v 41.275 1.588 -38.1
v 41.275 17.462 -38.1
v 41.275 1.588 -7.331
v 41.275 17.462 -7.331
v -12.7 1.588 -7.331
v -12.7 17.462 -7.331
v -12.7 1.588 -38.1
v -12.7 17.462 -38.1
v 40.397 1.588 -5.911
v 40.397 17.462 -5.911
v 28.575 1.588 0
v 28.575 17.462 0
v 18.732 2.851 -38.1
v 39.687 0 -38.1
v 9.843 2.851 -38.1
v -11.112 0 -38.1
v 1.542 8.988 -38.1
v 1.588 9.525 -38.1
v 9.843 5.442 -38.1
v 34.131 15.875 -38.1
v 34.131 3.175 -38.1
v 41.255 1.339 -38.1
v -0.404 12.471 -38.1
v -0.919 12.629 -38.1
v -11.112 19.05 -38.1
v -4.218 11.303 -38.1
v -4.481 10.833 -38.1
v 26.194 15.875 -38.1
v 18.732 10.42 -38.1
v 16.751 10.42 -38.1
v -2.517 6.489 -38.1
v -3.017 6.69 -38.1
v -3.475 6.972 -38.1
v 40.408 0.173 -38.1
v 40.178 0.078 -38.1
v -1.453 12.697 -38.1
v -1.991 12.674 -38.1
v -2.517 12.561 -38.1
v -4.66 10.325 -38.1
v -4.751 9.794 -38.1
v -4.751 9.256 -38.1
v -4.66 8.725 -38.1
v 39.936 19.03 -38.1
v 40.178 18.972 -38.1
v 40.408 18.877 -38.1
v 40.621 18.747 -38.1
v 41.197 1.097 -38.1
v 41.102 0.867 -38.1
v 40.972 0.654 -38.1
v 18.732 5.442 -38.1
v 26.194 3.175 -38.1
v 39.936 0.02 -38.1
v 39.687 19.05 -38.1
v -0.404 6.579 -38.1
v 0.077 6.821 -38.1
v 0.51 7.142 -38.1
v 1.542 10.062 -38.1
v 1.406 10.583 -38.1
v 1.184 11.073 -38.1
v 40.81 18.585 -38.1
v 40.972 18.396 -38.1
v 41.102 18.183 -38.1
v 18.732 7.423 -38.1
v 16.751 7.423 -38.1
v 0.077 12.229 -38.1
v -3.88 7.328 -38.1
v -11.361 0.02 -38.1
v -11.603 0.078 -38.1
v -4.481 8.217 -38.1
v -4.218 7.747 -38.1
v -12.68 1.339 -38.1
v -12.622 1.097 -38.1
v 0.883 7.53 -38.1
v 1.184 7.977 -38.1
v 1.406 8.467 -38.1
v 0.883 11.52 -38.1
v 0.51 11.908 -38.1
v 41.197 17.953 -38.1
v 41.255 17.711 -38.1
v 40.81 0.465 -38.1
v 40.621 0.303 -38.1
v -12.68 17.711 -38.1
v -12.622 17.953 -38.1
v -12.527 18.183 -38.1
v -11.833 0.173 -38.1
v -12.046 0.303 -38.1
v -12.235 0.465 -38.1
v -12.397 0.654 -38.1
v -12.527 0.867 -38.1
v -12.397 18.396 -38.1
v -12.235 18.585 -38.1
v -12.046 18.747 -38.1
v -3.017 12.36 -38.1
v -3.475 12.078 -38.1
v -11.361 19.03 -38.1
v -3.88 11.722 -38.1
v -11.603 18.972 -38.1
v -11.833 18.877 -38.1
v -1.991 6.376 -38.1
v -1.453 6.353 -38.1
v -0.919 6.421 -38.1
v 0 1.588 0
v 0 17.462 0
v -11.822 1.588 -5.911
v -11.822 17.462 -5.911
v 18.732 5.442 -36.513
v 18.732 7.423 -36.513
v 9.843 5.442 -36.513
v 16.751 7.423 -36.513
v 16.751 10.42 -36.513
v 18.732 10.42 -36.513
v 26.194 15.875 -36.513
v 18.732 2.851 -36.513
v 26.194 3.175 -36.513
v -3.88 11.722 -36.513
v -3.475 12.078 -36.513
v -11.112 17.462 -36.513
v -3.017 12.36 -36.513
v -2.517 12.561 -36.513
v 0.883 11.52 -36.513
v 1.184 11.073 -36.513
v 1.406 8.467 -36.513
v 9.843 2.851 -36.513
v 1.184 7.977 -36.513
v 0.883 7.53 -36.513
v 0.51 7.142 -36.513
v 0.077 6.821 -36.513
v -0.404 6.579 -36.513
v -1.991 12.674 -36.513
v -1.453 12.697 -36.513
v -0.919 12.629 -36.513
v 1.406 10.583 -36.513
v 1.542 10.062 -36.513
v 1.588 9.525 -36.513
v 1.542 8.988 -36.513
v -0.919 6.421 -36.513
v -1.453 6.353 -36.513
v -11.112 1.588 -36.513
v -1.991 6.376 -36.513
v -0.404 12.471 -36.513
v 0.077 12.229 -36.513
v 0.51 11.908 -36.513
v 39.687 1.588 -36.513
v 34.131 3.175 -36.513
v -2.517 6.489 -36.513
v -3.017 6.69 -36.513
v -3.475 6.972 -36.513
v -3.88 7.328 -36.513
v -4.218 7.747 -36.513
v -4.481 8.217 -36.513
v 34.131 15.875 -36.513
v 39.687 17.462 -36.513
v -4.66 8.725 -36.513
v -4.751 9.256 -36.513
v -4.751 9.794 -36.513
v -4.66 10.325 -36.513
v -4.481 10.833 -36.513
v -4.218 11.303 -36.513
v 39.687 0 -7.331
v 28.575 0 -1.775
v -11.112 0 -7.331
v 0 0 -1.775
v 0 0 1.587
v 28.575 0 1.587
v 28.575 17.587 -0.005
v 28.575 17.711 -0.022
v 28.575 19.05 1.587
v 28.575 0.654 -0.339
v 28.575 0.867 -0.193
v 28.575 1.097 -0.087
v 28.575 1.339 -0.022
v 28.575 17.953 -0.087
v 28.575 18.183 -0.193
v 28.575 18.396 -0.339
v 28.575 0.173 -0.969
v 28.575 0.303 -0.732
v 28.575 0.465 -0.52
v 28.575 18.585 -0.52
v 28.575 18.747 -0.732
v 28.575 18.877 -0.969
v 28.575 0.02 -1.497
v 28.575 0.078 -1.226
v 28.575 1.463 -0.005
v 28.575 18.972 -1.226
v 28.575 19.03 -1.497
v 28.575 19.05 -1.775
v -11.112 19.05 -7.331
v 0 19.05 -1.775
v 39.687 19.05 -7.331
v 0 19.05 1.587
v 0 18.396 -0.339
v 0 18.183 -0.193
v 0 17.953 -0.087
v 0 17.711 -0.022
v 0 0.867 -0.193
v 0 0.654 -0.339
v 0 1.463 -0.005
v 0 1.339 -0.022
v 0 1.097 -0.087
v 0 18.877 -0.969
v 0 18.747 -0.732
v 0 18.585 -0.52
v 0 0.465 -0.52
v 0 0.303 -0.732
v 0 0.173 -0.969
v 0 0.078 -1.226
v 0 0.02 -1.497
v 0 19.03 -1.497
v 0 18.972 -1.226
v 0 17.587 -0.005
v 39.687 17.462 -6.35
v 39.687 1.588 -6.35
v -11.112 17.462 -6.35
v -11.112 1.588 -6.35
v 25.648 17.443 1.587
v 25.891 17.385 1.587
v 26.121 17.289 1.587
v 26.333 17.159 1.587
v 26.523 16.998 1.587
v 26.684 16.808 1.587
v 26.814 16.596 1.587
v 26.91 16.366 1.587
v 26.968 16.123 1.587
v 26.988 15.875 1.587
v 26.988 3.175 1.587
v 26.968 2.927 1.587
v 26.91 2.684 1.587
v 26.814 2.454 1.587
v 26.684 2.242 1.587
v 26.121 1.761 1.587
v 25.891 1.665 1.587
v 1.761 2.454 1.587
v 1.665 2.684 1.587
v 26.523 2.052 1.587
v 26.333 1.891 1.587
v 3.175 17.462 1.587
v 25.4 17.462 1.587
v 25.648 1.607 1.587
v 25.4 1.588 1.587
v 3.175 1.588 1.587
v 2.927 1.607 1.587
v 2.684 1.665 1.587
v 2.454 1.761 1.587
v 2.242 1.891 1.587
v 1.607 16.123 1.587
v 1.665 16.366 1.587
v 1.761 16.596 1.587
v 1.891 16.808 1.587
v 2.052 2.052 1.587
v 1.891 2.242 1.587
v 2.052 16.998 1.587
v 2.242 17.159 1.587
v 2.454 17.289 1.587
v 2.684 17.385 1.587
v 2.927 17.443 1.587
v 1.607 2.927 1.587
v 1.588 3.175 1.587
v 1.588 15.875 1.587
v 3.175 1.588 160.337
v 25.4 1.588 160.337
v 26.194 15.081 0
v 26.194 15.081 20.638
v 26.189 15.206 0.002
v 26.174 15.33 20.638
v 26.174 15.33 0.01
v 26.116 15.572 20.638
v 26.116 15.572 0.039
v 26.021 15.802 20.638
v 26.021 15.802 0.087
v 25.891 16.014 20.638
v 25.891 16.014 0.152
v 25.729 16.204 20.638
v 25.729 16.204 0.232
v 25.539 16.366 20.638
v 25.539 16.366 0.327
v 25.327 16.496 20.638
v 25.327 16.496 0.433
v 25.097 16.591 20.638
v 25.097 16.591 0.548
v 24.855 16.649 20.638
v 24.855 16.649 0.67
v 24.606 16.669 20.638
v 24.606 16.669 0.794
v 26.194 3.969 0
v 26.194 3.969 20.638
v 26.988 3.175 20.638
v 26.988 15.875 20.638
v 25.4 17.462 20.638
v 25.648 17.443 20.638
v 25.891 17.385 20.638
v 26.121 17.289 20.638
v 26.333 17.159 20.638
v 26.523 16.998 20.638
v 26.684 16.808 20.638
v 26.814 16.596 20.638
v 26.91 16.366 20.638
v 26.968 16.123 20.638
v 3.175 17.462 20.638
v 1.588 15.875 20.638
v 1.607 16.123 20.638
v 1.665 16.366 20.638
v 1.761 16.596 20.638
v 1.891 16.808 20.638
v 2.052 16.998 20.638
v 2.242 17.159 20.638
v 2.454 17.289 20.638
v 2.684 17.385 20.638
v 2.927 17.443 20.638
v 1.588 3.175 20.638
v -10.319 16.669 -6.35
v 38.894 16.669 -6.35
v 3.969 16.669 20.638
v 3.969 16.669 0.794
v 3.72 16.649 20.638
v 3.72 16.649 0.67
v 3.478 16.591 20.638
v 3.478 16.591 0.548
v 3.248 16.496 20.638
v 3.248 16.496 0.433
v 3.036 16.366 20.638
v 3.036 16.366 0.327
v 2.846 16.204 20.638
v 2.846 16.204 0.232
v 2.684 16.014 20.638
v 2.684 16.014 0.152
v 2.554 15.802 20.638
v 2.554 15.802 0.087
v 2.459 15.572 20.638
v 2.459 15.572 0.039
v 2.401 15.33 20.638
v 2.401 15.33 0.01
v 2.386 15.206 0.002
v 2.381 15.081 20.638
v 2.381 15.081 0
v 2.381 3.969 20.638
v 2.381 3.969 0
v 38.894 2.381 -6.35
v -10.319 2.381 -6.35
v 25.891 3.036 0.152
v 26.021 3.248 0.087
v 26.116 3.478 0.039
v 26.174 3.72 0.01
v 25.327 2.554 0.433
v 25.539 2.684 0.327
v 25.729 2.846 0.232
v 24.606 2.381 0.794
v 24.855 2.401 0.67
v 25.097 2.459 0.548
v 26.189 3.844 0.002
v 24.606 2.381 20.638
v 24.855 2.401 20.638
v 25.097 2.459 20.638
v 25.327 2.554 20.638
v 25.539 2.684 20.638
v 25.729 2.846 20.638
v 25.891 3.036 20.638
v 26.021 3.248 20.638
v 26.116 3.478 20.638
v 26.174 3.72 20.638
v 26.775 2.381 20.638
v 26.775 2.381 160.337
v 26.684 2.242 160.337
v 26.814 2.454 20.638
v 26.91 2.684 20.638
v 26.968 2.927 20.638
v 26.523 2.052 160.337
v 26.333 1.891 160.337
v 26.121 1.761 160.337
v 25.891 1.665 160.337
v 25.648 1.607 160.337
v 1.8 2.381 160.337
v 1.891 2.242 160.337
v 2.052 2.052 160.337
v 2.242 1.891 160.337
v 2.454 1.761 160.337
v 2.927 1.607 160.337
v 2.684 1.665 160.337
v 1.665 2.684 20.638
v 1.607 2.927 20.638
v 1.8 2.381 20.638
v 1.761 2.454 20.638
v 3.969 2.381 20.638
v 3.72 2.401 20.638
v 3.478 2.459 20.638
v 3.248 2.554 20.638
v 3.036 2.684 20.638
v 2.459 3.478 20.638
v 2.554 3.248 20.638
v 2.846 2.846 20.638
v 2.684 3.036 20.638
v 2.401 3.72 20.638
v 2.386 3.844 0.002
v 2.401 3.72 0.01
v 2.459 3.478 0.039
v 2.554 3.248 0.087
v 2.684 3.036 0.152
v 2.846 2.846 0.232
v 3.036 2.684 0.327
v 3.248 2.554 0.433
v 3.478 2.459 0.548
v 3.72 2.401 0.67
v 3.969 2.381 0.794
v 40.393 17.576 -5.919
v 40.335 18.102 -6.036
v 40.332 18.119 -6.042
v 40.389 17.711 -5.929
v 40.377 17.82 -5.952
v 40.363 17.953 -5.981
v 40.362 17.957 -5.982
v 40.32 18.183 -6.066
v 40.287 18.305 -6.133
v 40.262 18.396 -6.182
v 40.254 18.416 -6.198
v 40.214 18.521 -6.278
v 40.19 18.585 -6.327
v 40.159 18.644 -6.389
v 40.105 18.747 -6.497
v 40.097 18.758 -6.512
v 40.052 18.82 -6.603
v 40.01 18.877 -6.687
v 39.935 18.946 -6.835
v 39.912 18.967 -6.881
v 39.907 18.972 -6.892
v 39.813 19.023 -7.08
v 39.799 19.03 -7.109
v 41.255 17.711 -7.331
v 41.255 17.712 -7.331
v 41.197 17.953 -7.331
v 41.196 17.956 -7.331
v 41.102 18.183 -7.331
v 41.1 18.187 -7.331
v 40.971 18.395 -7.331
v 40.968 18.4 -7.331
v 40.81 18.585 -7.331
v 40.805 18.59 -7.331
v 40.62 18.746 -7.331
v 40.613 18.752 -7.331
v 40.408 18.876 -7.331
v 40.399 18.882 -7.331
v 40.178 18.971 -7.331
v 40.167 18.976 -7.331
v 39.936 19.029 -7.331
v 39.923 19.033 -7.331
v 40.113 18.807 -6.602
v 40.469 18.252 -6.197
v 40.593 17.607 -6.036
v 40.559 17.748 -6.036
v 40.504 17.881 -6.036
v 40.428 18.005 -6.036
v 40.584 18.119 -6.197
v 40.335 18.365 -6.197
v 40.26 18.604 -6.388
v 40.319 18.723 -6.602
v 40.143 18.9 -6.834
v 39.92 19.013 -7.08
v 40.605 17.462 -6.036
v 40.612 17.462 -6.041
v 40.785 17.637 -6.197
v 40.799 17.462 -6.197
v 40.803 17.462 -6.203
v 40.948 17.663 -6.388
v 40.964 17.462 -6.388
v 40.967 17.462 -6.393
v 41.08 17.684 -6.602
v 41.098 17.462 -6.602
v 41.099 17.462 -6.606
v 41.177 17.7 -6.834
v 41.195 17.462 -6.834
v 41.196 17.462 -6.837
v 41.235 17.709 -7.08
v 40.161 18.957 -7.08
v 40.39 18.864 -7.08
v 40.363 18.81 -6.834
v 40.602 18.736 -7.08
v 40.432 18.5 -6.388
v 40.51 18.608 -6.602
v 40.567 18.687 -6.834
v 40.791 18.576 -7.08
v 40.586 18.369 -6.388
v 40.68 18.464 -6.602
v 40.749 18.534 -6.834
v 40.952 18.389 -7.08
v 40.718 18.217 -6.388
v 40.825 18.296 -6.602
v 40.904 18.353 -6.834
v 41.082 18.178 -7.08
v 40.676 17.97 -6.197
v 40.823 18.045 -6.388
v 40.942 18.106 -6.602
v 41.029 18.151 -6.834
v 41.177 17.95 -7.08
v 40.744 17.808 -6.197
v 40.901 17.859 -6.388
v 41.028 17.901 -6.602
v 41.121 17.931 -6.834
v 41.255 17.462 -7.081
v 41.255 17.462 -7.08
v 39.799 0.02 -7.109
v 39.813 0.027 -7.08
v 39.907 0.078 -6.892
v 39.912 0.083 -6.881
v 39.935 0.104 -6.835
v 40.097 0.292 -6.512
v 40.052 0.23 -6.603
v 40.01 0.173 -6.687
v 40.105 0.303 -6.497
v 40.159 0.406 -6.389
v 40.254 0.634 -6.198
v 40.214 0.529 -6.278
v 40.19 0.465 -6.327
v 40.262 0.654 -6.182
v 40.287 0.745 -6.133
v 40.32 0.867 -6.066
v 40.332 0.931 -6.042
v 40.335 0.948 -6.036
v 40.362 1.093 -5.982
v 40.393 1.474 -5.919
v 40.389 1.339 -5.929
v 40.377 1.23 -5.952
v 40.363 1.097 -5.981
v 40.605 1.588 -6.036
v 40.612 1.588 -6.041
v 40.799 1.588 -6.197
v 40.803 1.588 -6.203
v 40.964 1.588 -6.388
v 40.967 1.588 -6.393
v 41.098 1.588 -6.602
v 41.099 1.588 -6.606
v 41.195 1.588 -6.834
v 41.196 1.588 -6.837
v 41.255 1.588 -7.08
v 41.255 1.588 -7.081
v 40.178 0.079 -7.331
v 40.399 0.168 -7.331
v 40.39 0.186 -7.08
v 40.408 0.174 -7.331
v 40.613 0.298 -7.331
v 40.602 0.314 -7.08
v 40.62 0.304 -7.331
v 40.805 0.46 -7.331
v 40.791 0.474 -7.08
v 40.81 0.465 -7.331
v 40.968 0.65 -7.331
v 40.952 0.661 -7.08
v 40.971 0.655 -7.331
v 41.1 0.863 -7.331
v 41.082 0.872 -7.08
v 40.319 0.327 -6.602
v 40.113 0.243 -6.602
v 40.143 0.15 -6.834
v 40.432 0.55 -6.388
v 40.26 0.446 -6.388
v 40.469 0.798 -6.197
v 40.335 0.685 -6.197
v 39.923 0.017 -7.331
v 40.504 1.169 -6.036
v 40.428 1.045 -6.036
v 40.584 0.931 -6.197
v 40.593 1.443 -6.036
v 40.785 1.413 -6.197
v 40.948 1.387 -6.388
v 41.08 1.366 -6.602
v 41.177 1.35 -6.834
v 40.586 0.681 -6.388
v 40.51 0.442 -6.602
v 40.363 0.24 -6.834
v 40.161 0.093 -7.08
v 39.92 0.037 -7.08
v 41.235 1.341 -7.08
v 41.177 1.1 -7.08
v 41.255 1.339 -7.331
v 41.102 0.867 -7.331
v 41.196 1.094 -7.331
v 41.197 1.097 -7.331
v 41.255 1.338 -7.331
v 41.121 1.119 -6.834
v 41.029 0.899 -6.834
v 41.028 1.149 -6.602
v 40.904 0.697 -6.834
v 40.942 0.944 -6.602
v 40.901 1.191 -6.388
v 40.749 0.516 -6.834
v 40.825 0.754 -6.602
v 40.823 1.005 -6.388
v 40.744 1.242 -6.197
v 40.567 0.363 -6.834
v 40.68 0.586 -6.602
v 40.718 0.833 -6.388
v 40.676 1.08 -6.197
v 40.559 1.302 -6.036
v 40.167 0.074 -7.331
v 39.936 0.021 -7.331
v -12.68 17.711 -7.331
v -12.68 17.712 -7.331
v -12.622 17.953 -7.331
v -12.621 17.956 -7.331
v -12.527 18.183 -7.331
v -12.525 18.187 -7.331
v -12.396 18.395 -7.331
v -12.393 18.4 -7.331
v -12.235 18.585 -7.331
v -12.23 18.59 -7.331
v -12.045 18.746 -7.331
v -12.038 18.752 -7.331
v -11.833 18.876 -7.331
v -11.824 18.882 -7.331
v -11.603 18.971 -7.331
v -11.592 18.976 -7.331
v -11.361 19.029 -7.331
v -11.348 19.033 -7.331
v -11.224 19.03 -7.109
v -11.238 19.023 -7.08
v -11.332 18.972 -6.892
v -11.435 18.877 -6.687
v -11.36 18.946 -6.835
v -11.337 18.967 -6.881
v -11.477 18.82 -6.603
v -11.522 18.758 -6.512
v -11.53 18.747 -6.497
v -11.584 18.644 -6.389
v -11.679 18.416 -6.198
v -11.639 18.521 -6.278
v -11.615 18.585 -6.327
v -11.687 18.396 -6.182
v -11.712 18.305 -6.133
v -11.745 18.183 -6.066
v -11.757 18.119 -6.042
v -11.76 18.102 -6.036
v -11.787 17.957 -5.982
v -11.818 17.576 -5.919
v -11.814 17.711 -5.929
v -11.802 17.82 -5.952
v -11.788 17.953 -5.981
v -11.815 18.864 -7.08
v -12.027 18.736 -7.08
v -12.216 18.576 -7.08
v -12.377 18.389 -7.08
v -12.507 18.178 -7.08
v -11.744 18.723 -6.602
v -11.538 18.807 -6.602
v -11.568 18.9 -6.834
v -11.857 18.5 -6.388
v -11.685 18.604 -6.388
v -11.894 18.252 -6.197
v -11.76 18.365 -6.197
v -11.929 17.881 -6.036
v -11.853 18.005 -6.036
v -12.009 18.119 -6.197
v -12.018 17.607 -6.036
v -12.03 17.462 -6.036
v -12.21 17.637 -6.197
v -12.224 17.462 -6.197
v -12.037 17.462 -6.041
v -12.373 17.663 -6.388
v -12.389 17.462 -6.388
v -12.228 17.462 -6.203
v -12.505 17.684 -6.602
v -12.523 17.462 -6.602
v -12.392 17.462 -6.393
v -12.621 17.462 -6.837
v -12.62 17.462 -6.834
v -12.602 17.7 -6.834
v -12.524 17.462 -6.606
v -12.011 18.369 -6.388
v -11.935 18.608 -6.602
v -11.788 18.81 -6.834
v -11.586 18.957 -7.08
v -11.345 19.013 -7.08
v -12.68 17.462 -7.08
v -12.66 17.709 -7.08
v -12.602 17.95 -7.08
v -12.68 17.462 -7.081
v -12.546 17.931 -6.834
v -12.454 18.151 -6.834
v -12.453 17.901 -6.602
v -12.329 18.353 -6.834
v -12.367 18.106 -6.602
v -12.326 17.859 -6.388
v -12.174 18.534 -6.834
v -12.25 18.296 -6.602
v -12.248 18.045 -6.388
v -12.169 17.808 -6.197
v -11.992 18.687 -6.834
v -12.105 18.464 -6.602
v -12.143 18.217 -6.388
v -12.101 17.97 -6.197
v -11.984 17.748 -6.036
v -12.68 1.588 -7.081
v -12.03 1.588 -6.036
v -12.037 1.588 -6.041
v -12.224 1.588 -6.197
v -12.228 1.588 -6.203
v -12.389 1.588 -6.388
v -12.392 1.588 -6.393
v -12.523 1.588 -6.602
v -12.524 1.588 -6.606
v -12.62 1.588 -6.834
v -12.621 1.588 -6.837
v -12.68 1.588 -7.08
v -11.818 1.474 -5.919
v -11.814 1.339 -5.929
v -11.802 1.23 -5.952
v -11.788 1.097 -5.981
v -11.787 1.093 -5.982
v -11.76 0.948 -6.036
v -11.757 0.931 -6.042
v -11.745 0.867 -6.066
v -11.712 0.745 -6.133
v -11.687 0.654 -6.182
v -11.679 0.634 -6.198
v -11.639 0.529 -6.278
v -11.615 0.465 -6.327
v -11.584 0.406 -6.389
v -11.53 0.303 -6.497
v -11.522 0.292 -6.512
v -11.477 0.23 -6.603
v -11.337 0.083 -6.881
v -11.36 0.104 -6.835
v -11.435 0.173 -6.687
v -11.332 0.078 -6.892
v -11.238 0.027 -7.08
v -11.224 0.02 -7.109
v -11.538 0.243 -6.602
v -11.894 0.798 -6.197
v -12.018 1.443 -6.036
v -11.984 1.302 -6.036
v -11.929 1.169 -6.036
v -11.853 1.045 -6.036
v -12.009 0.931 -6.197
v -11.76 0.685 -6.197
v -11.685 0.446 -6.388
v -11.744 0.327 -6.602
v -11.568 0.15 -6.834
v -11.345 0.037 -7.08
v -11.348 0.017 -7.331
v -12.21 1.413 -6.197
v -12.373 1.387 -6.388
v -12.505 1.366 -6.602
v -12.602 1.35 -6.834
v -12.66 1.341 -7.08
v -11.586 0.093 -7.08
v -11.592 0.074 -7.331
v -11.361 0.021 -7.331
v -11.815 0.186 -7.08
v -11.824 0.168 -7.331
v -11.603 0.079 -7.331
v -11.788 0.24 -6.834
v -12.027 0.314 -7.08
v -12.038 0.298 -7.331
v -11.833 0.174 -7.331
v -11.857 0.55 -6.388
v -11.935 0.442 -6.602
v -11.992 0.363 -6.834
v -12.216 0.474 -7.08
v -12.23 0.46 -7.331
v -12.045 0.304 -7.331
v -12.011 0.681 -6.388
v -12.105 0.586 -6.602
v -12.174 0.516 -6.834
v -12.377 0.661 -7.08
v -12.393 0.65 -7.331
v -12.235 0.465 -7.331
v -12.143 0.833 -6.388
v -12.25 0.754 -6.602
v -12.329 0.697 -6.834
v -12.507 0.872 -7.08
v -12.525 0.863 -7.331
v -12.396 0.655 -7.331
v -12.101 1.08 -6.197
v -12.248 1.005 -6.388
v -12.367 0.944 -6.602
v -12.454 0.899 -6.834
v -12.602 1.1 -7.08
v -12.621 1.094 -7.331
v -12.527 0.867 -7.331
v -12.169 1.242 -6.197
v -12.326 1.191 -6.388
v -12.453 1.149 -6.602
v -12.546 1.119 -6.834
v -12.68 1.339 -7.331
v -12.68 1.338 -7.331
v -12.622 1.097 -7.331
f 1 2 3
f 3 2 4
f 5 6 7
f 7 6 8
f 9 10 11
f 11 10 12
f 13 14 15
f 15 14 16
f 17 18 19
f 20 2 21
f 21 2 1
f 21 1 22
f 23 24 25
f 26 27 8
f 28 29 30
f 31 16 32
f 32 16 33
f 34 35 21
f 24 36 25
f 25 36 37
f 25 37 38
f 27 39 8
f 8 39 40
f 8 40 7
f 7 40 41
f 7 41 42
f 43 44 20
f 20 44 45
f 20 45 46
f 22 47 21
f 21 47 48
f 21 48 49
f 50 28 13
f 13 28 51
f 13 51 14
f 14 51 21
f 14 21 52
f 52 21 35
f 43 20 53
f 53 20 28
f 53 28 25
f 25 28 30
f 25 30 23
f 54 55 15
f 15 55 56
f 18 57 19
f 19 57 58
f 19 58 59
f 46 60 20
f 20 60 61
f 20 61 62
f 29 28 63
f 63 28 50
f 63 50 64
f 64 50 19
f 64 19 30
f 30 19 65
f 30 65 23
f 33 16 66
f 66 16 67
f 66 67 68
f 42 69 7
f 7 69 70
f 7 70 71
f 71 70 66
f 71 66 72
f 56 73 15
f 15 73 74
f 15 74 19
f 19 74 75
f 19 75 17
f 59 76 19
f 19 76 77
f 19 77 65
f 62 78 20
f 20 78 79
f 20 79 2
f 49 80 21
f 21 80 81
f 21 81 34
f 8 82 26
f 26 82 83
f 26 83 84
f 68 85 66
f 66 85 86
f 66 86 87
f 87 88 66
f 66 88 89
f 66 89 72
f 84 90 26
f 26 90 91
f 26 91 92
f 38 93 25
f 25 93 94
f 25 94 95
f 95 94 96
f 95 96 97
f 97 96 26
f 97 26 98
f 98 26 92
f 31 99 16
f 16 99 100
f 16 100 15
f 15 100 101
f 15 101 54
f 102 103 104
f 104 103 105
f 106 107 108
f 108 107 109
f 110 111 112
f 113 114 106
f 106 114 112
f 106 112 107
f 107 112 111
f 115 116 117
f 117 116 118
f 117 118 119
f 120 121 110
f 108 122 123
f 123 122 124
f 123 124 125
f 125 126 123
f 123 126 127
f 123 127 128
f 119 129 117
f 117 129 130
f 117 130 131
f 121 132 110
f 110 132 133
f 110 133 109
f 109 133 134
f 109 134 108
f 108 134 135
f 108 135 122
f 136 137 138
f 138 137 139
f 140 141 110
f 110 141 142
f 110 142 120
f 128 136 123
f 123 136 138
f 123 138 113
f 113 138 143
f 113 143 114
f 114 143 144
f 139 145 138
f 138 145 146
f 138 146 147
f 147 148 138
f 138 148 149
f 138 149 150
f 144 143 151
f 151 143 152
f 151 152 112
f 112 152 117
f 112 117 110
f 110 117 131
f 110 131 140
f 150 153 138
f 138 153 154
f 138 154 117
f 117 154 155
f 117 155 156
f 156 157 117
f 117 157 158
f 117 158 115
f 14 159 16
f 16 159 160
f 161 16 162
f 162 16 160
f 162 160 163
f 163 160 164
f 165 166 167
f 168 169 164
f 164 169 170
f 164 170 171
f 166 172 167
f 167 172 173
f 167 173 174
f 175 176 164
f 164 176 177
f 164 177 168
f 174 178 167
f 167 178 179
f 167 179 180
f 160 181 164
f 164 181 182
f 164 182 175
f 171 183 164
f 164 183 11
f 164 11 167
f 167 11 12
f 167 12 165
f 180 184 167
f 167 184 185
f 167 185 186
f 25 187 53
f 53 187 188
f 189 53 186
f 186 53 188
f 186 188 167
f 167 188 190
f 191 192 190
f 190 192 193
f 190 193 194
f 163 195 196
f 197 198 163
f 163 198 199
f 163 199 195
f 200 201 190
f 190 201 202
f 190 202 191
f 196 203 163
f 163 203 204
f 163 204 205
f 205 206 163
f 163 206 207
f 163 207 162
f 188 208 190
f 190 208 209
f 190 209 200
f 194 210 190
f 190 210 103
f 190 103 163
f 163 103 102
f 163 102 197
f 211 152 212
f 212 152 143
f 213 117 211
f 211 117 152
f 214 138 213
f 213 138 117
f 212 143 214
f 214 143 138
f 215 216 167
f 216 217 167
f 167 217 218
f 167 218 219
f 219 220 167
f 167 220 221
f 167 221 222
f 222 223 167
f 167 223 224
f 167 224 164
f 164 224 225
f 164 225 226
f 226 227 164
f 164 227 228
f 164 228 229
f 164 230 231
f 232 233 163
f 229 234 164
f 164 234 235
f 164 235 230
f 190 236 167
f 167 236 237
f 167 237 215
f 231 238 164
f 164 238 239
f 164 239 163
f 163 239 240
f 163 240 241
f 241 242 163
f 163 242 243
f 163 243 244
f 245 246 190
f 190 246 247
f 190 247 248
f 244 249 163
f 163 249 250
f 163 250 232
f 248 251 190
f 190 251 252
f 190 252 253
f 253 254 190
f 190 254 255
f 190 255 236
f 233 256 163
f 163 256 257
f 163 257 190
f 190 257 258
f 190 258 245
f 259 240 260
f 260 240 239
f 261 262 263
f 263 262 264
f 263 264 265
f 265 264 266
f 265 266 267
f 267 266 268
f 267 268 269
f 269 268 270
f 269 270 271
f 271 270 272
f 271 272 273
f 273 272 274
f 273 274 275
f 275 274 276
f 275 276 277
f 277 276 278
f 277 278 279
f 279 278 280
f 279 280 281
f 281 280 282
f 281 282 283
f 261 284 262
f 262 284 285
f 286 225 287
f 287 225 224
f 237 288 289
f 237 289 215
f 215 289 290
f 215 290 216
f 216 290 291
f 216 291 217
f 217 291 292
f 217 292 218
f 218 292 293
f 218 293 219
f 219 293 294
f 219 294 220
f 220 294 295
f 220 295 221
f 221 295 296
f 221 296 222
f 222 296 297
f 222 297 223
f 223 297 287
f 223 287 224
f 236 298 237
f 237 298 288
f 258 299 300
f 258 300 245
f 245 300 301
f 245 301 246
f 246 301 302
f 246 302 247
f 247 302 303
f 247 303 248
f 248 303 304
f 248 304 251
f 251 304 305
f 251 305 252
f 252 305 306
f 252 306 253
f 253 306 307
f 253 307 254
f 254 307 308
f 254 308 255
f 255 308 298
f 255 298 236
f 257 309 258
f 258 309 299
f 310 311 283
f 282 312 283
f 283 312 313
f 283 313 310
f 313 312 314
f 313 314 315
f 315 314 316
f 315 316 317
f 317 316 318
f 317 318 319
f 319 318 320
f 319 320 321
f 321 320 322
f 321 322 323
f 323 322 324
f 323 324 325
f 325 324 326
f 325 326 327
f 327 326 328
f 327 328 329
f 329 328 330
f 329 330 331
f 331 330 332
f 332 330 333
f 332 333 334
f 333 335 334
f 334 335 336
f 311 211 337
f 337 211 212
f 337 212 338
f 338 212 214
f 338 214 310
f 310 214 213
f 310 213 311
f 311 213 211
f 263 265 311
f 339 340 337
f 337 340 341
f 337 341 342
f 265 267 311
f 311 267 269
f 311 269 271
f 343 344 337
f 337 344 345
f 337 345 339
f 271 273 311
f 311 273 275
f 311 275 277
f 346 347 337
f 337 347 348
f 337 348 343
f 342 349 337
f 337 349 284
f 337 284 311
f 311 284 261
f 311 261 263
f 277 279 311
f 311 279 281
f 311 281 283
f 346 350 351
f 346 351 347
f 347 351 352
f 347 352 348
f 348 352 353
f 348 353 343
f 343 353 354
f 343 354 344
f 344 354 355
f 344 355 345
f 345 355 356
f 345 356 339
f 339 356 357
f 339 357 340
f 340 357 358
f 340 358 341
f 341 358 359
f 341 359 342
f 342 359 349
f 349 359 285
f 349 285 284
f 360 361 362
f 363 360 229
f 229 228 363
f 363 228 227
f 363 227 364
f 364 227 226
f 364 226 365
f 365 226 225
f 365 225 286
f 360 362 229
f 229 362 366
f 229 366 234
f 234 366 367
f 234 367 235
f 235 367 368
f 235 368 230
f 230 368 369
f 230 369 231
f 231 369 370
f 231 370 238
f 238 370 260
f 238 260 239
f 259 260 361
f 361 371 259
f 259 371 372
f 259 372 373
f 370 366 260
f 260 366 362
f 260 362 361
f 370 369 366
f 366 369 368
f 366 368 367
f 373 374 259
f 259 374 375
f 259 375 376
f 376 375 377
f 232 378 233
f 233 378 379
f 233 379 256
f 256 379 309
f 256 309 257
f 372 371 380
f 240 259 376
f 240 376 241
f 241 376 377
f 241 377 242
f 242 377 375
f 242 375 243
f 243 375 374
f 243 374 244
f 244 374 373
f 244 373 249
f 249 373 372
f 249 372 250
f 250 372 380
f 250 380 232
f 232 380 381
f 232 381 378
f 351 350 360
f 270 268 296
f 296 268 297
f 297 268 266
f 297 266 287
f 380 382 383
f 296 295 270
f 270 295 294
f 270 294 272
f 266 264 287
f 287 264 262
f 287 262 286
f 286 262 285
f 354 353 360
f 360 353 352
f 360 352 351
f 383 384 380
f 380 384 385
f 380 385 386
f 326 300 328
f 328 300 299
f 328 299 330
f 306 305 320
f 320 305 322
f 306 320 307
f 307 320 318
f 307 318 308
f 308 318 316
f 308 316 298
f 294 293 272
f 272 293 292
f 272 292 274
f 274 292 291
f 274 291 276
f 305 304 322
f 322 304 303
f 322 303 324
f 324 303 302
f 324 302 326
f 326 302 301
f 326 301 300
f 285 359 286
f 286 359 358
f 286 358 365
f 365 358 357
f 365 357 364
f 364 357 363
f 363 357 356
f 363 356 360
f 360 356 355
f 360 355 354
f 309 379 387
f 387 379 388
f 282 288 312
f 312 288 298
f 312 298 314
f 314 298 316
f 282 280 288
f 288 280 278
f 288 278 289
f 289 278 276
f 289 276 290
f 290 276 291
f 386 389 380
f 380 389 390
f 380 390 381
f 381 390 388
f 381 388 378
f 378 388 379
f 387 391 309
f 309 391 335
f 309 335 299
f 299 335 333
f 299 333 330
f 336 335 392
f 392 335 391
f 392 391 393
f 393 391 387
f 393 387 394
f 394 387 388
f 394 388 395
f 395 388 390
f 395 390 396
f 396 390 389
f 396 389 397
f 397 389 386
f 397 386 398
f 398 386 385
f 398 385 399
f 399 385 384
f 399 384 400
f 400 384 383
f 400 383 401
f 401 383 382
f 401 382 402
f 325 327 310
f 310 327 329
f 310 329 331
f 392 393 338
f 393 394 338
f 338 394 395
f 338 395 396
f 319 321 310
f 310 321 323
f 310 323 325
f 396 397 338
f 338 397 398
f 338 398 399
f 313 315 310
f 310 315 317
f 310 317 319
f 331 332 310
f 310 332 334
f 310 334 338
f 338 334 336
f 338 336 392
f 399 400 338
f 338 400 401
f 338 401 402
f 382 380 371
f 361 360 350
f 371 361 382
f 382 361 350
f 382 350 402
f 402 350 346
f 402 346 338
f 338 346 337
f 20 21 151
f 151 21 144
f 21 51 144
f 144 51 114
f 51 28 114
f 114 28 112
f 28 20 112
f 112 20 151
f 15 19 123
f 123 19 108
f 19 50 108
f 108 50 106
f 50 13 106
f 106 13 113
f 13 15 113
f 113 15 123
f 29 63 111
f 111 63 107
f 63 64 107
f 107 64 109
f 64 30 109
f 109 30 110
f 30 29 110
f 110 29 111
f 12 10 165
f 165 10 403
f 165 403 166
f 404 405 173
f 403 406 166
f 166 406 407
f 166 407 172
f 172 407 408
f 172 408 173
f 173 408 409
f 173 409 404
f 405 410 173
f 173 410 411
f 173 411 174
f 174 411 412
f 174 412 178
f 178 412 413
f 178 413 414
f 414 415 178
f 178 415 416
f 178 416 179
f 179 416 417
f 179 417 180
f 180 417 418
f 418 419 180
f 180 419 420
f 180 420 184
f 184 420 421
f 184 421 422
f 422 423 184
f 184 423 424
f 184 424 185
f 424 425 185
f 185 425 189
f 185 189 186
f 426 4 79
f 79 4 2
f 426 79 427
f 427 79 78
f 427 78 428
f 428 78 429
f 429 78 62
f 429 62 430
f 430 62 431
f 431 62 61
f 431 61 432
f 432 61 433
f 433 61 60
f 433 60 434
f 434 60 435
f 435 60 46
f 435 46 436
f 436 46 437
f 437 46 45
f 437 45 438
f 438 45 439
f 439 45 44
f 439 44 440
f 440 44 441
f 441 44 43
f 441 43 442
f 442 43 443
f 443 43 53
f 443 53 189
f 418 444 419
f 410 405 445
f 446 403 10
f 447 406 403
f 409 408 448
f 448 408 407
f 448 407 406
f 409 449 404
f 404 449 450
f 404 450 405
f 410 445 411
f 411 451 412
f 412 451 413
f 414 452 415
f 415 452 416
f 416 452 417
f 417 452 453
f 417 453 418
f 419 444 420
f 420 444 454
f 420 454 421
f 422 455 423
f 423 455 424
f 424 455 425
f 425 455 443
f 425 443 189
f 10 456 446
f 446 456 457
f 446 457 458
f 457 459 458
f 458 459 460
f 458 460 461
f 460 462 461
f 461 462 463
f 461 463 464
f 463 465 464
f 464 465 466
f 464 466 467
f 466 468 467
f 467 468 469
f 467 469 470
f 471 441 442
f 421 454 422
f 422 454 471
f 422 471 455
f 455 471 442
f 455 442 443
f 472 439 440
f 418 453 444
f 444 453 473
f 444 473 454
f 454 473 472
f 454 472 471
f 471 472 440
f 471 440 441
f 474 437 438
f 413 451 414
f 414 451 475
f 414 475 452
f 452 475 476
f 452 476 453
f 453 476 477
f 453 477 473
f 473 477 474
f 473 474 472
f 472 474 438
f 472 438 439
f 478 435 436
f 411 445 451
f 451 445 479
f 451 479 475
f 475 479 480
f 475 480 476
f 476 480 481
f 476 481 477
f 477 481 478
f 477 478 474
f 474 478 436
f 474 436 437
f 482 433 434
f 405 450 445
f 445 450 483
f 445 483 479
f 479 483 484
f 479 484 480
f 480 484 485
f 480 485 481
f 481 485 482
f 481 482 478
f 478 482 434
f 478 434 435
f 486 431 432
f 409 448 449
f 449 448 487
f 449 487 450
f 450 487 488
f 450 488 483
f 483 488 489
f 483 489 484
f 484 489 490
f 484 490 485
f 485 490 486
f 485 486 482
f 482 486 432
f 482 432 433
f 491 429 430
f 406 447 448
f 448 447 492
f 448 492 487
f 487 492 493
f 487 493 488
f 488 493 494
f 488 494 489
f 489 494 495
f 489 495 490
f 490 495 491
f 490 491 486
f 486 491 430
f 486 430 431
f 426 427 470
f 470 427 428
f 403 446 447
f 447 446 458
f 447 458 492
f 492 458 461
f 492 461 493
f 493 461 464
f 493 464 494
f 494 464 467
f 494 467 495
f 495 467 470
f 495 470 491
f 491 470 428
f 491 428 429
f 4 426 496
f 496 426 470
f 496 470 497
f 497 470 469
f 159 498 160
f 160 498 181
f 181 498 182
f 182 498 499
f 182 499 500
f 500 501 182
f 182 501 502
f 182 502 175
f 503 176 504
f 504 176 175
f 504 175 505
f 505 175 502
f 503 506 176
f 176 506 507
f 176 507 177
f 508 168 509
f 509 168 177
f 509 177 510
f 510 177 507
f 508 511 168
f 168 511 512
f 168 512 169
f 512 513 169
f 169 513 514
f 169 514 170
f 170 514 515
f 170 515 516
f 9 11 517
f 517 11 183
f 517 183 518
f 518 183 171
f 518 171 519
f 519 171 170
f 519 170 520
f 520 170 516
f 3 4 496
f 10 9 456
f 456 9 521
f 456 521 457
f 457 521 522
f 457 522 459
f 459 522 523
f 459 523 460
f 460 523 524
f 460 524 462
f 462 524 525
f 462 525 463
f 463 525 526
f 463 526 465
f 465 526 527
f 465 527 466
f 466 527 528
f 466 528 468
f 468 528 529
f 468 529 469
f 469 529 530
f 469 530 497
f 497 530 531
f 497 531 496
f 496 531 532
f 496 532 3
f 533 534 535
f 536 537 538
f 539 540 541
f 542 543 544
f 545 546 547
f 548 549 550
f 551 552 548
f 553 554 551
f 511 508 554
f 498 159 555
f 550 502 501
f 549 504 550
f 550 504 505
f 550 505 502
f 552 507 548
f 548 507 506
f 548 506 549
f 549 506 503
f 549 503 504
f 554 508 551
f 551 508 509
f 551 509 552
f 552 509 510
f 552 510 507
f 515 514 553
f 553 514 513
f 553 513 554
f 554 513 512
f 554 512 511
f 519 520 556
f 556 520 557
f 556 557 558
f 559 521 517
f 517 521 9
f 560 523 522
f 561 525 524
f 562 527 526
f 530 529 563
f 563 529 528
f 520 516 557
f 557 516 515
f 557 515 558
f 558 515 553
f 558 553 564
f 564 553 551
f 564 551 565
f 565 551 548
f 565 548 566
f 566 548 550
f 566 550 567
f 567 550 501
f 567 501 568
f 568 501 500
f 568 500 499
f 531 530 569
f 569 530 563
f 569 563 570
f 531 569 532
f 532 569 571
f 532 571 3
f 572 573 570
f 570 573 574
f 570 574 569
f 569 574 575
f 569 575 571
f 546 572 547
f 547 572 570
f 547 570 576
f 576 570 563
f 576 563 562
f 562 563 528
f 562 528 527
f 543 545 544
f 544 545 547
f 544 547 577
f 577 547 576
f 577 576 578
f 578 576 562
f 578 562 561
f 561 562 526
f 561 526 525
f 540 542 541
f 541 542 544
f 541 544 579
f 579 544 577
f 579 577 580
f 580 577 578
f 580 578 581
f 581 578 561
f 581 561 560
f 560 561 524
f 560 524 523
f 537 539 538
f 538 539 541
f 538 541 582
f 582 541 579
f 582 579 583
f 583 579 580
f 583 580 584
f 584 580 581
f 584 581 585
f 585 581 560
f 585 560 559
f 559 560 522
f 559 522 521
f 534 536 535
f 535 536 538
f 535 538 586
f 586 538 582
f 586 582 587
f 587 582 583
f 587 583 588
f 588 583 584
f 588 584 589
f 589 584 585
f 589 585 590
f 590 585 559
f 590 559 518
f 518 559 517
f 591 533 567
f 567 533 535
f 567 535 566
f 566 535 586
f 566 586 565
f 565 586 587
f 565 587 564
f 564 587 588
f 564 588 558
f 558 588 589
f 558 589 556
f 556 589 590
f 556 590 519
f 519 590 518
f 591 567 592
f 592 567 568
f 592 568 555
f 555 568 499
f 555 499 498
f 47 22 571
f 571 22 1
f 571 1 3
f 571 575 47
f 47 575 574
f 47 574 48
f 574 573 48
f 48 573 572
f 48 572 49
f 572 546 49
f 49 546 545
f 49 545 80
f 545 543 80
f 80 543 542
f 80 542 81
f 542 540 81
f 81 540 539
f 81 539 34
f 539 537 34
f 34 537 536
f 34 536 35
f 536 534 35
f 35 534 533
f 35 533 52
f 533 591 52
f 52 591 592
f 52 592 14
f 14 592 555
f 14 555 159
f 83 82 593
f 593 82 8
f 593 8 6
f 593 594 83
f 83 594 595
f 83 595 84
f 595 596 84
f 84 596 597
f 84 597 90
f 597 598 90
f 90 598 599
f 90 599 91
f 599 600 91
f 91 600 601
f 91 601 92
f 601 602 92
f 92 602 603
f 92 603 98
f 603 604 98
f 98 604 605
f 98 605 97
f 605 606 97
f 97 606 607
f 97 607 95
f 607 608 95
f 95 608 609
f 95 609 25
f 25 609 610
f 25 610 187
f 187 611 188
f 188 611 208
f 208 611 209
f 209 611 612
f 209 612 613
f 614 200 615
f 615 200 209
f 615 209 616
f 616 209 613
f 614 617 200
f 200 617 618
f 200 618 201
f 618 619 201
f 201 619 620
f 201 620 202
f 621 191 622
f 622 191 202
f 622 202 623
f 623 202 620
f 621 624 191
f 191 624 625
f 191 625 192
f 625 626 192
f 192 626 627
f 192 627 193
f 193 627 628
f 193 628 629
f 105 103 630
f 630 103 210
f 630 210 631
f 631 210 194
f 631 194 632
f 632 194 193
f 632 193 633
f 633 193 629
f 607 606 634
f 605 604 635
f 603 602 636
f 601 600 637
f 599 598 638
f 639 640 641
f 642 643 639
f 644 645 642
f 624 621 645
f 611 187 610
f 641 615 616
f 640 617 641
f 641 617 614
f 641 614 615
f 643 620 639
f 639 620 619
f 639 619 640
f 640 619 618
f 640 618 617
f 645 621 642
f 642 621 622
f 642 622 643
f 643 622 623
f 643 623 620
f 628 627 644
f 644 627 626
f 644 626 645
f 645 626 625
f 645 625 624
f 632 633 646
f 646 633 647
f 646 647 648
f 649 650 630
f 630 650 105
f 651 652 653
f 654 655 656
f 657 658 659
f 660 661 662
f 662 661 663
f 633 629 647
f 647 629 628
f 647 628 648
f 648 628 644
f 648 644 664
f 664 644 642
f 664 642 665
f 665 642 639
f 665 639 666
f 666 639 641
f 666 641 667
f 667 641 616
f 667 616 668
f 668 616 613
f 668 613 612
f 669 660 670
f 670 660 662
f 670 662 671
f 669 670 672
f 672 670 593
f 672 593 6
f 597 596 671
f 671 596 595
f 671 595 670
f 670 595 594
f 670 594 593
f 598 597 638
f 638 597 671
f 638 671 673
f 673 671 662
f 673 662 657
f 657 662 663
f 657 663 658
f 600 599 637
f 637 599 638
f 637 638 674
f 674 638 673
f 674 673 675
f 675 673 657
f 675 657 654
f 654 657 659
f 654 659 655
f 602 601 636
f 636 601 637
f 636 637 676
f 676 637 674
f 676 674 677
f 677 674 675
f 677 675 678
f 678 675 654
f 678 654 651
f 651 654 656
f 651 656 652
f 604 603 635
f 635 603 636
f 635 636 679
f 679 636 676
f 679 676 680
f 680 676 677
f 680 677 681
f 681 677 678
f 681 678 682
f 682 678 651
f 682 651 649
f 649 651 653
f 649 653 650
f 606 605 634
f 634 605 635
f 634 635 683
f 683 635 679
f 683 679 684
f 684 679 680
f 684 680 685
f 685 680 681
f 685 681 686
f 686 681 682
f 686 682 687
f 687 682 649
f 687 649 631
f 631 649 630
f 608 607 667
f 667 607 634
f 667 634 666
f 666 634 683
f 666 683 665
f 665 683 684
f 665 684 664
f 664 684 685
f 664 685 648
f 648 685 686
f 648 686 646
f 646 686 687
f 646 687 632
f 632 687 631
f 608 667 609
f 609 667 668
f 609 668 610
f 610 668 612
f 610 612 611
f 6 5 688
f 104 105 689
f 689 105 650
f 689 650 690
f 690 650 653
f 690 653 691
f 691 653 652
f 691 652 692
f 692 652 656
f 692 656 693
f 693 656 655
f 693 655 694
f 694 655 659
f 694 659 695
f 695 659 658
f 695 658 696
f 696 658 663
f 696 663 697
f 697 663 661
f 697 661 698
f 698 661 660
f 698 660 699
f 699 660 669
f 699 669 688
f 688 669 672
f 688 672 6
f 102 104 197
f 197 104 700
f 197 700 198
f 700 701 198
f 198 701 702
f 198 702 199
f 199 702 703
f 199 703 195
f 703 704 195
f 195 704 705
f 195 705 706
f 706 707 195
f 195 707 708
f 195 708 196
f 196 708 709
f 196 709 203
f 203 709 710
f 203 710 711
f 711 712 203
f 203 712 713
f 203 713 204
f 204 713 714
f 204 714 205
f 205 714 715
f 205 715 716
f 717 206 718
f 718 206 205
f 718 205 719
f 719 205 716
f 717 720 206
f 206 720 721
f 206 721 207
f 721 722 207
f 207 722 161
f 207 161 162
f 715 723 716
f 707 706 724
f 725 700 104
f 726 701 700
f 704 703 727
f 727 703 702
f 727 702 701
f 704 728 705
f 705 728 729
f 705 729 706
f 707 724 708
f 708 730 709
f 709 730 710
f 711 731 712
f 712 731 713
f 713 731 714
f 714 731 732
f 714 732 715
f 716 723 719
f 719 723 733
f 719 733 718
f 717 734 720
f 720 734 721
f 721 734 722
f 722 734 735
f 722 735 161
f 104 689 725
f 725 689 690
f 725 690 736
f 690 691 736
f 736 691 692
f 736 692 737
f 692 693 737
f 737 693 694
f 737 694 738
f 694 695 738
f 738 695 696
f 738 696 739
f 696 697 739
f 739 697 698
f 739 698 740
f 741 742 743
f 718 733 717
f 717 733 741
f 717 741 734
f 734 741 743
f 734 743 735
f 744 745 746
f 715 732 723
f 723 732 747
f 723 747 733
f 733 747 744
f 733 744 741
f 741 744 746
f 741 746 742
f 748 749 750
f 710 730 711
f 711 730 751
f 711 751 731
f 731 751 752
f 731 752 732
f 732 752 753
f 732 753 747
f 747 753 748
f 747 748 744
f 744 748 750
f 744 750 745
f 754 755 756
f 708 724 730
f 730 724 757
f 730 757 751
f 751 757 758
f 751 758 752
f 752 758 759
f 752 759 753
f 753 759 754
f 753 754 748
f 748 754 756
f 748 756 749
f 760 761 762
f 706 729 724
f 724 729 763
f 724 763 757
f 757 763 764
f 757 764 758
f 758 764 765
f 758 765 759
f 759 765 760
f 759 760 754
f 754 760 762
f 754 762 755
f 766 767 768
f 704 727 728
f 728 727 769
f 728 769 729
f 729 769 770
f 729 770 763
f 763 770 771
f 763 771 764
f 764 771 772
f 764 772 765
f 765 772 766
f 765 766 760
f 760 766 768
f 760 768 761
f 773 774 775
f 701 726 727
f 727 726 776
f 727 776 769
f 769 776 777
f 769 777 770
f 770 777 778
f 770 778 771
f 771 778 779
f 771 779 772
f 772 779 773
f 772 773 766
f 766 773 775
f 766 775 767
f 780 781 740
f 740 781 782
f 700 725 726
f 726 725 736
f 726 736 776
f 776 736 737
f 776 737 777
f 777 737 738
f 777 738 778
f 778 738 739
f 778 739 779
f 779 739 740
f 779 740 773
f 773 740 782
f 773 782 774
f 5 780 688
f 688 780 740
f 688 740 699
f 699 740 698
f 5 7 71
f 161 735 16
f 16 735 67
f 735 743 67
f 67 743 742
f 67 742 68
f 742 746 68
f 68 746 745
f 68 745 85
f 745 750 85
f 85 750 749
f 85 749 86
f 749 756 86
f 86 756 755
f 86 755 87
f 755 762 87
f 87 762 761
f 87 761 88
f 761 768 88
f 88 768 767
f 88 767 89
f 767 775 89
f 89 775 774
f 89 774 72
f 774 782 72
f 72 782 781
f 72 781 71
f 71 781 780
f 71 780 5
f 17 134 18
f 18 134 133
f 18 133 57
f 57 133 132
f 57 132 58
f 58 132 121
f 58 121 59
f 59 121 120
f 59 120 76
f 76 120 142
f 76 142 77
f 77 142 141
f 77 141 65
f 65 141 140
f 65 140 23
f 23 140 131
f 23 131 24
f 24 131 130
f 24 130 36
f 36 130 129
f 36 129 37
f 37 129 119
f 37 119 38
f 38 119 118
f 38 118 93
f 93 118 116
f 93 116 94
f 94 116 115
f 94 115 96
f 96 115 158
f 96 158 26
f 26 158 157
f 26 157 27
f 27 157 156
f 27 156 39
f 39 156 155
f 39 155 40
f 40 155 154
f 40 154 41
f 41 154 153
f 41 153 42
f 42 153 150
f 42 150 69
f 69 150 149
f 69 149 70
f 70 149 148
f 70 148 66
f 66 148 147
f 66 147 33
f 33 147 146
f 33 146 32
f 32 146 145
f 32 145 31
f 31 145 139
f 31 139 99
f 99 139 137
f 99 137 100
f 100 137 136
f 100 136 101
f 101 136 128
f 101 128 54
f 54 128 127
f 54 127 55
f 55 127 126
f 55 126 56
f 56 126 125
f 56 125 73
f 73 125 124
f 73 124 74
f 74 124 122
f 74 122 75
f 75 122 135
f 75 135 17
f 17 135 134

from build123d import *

# Parameters (mm, degrees)
CUT_EXTRUDE1_START         = -1.5875
CUT_EXTRUDE1_OUTLINE_W     = 53.975
CUT_EXTRUDE1_OUTLINE_H     = 19.05
CUT_EXTRUDE1_OUTLINE_W_2   = 50.8
CUT_EXTRUDE1_OUTLINE_H_2   = 15.875
CUT_EXTRUDE1_DEPTH         = 38.1
CUT_EXTRUDE1_START_2       = 30.1625
CUT_EXTRUDE1_2_DEPTH       = 166.6875
CUT_EXTRUDE1_3_DEPTH       = 6.35
CUT_EXTRUDE1_4_OUTLINE_W   = 50.8
CUT_EXTRUDE1_4_OUTLINE_H   = 15.875
CUT_EXTRUDE1_4_OUTLINE_W_2 = 7.9375
CUT_EXTRUDE1_4_OUTLINE_H_2 = 12.7
CUT_EXTRUDE1_4_DEPTH       = 1.5875
CUT_EXTRUDE1_5_DEPTH       = 26.9875
CUT_EXTRUDE1_6_OUTLINE_W   = 28.575
CUT_EXTRUDE1_6_OUTLINE_H   = 19.05
CUT_EXTRUDE1_6_DEPTH       = 7.9375
CUT_EXTRUDE1_START_3       = 2.38125
CUT_EXTRUDE1_7_DEPTH       = 14.2875
CUT_EXTRUDE1_8_DEPTH       = 19.05
SKETCH2_W                  = 8.89
SKETCH2_H                  = 2.5908
CUT_EXTRUDE2_DEPTH         = 203.030816028
SKETCH3_W                  = 1.9812
SKETCH3_H                  = 2.9972
CUT_EXTRUDE3_DEPTH         = 203.030816028
FILLET1_R                  = 1.5875
HOLE1_D                    = 6.35
HOLE1_DEPTH                = 1.5875


with BuildPart() as part:
    # Cut-Extrude1: read off the stored shape, not the designer's step
    # Cut-Extrude1 outline → Cut-Extrude1 (new body)
    with BuildSketch(Plane.XY.offset(-36.5125).offset(CUT_EXTRUDE1_START)):
        with Locations((14.2875, 9.525)):
            Rectangle(CUT_EXTRUDE1_OUTLINE_W, CUT_EXTRUDE1_OUTLINE_H)
        with Locations((14.2875, 9.525)):
            Rectangle(CUT_EXTRUDE1_OUTLINE_W_2, CUT_EXTRUDE1_OUTLINE_H_2, mode=Mode.SUBTRACT)
    extrude(amount=CUT_EXTRUDE1_DEPTH)

    # Cut-Extrude1 2 outline → Cut-Extrude1 2 (add)
    with BuildSketch(Plane.XY.offset(-36.5125).offset(CUT_EXTRUDE1_START_2)):
        with BuildLine():
            Line((3.175, 1.5875), (25.4, 1.5875))
            ThreePointArc((25.4, 1.5875), (26.19375, 1.800184672), (26.774815328, 2.38125))
            Line((26.774815328, 2.38125), (1.800184672, 2.38125))
            ThreePointArc((1.800184672, 2.38125), (2.38125, 1.800184672), (3.175, 1.5875))
        make_face()
    extrude(amount=CUT_EXTRUDE1_2_DEPTH)

    # Cut-Extrude1 3 outline → Cut-Extrude1 3 (add)
    with BuildSketch(Plane.XY.offset(-36.5125).offset(CUT_EXTRUDE1_START_2)):
        with BuildLine():
            Line((25.4, 1.5875), (39.6875, 1.5875))
            Line((39.6875, 1.5875), (39.6875, 17.4625))
            Line((39.6875, 17.4625), (-11.1125, 17.4625))
            Line((-11.1125, 17.4625), (-11.1125, 1.5875))
            Line((-11.1125, 1.5875), (3.175, 1.5875))
            ThreePointArc((3.175, 1.5875), (2.38125, 1.800184672), (1.800184672, 2.38125))
            Line((1.800184672, 2.38125), (3.96875, 2.38125))
            ThreePointArc((3.96875, 2.38125), (2.846217985, 2.846217985), (2.38125, 3.96875))
            Line((2.38125, 3.96875), (2.38125, 15.08125))
            ThreePointArc((2.38125, 15.08125), (2.846217985, 16.203782015), (3.96875, 16.66875))
            Line((3.96875, 16.66875), (24.60625, 16.66875))
            ThreePointArc((24.60625, 16.66875), (25.728782015, 16.203782015), (26.19375, 15.08125))
            Line((26.19375, 15.08125), (26.19375, 3.96875))
            ThreePointArc((26.19375, 3.96875), (25.728782015, 2.846217985), (24.60625, 2.38125))
            Line((24.60625, 2.38125), (26.774815328, 2.38125))
            ThreePointArc((26.774815328, 2.38125), (26.19375, 1.800184672), (25.4, 1.5875))
        make_face()
    extrude(amount=CUT_EXTRUDE1_3_DEPTH)

    # Cut-Extrude1 4 outline → Cut-Extrude1 4 (add)
    with BuildSketch(Plane.XY.offset(-36.5125).offset(CUT_EXTRUDE1_START)):
        with Locations((14.2875, 9.525)):
            Rectangle(CUT_EXTRUDE1_4_OUTLINE_W, CUT_EXTRUDE1_4_OUTLINE_H)
        with Locations((30.1625, 9.525)):
            Rectangle(CUT_EXTRUDE1_4_OUTLINE_W_2, CUT_EXTRUDE1_4_OUTLINE_H_2, mode=Mode.SUBTRACT)
    extrude(amount=CUT_EXTRUDE1_4_DEPTH)

    # Cut-Extrude1 5 outline → Cut-Extrude1 5 (add)
    with BuildSketch(Plane.XY.offset(-36.5125).offset(CUT_EXTRUDE1_START_2)):
        with BuildLine():
            Line((25.4, 17.4625), (3.175, 17.4625))
            ThreePointArc((3.175, 17.4625), (2.052467985, 16.997532015), (1.5875, 15.875))
            Line((1.5875, 15.875), (1.5875, 3.175))
            ThreePointArc((1.5875, 3.175), (1.641592751, 2.764124766), (1.800184672, 2.38125))
            Line((1.800184672, 2.38125), (3.96875, 2.38125))
            ThreePointArc((3.96875, 2.38125), (2.846217985, 2.846217985), (2.38125, 3.96875))
            Line((2.38125, 3.96875), (2.38125, 15.08125))
            ThreePointArc((2.38125, 15.08125), (2.846217985, 16.203782015), (3.96875, 16.66875))
            Line((3.96875, 16.66875), (24.60625, 16.66875))
            ThreePointArc((24.60625, 16.66875), (25.728782015, 16.203782015), (26.19375, 15.08125))
            Line((26.19375, 15.08125), (26.19375, 3.96875))
            ThreePointArc((26.19375, 3.96875), (25.728782015, 2.846217985), (24.60625, 2.38125))
            Line((24.60625, 2.38125), (26.774815328, 2.38125))
            ThreePointArc((26.774815328, 2.38125), (26.933407249, 2.764124766), (26.9875, 3.175))
            Line((26.9875, 3.175), (26.9875, 15.875))
            ThreePointArc((26.9875, 15.875), (26.522532015, 16.997532015), (25.4, 17.4625))
        make_face()
    extrude(amount=CUT_EXTRUDE1_5_DEPTH)

    # Cut-Extrude1 6 outline → Cut-Extrude1 6 (add)
    with BuildSketch(Plane.XY.offset(-36.5125).offset(CUT_EXTRUDE1_START_2)):
        with Locations((14.2875, 9.525)):
            Rectangle(CUT_EXTRUDE1_6_OUTLINE_W, CUT_EXTRUDE1_6_OUTLINE_H)
        with BuildLine():
            Line((25.4, 1.5875), (3.175, 1.5875))
            ThreePointArc((3.175, 1.5875), (2.052467985, 2.052467985), (1.5875, 3.175))
            Line((1.5875, 3.175), (1.5875, 15.875))
            ThreePointArc((1.5875, 15.875), (2.052467985, 16.997532015), (3.175, 17.4625))
            Line((3.175, 17.4625), (25.4, 17.4625))
            ThreePointArc((25.4, 17.4625), (26.522532015, 16.997532015), (26.9875, 15.875))
            Line((26.9875, 15.875), (26.9875, 3.175))
            ThreePointArc((26.9875, 3.175), (26.522532015, 2.052467985), (25.4, 1.5875))
        make_face(mode=Mode.SUBTRACT)
    extrude(amount=CUT_EXTRUDE1_6_DEPTH)

    # Cut-Extrude1 7 outline → Cut-Extrude1 7 (cut)
    with BuildSketch(Plane(origin=(0, 0, 0), x_dir=(1, 0, 0), z_dir=(0, 1, 0)).offset(CUT_EXTRUDE1_START_3)):
        Polygon((41.275, 6.35), (28.575, 0), (41.275, 0), align=None)
        Polygon((38.89375, 6.35), (-10.31875, 6.35), (6.38125, -2), (22.19375, -2), align=None)
        Polygon((0, 0), (-12.7, 6.35), (-12.7, 0), align=None)
    extrude(amount=CUT_EXTRUDE1_7_DEPTH, mode=Mode.SUBTRACT)

    # Cut-Extrude1 8 outline → Cut-Extrude1 8 (cut)
    with BuildSketch(Plane(origin=(0, 0, 0), x_dir=(1, 0, 0), z_dir=(0, 1, 0))):
        Polygon((41.275, 6.35), (28.575, 0), (41.275, 0), align=None)
        Polygon((0, 0), (-12.7, 6.35), (-12.7, 0), align=None)
    extrude(amount=CUT_EXTRUDE1_8_DEPTH, mode=Mode.SUBTRACT)

    # Sketch2 → Cut-Extrude2 (cut, through all)
    with BuildSketch(Plane.XY.offset(-36.5125)):
        with Locations((14.2875, 4.146252538)):
            Rectangle(SKETCH2_W, SKETCH2_H)
    extrude(amount=-CUT_EXTRUDE2_DEPTH, mode=Mode.SUBTRACT)

    # Sketch3 → Cut-Extrude3 (cut, through all)
    with BuildSketch(Plane.XY.offset(-36.5125)):
        with Locations((17.7419, 8.921452538)):
            Rectangle(SKETCH3_W, SKETCH3_H)
    extrude(amount=-CUT_EXTRUDE3_DEPTH, mode=Mode.SUBTRACT)

    # Fillet1
    fillet1_edges = [part.edges().sort_by_distance(p)[0] for p in [
        (-6.35, 0, -3.175),
        (-12.7, 0, -22.225),
        (-6.35, 19.05, -3.175),
        (-12.7, 9.525, -6.35),
        (-12.7, 19.05, -22.225),
        (41.275, 0, -22.225),
        (34.925, 0, -3.175),
        (41.275, 9.525, -6.35),
        (34.925, 19.05, -3.175),
        (41.275, 19.05, -22.225),
    ]]
    fillet(fillet1_edges, radius=FILLET1_R)

    # Hole1
    with Locations(Plane.XY.offset(-36.5125)):
        with Locations((-1.5875, 9.525)):
            Hole(HOLE1_D / 2, depth=HOLE1_DEPTH)


solid = part.part
